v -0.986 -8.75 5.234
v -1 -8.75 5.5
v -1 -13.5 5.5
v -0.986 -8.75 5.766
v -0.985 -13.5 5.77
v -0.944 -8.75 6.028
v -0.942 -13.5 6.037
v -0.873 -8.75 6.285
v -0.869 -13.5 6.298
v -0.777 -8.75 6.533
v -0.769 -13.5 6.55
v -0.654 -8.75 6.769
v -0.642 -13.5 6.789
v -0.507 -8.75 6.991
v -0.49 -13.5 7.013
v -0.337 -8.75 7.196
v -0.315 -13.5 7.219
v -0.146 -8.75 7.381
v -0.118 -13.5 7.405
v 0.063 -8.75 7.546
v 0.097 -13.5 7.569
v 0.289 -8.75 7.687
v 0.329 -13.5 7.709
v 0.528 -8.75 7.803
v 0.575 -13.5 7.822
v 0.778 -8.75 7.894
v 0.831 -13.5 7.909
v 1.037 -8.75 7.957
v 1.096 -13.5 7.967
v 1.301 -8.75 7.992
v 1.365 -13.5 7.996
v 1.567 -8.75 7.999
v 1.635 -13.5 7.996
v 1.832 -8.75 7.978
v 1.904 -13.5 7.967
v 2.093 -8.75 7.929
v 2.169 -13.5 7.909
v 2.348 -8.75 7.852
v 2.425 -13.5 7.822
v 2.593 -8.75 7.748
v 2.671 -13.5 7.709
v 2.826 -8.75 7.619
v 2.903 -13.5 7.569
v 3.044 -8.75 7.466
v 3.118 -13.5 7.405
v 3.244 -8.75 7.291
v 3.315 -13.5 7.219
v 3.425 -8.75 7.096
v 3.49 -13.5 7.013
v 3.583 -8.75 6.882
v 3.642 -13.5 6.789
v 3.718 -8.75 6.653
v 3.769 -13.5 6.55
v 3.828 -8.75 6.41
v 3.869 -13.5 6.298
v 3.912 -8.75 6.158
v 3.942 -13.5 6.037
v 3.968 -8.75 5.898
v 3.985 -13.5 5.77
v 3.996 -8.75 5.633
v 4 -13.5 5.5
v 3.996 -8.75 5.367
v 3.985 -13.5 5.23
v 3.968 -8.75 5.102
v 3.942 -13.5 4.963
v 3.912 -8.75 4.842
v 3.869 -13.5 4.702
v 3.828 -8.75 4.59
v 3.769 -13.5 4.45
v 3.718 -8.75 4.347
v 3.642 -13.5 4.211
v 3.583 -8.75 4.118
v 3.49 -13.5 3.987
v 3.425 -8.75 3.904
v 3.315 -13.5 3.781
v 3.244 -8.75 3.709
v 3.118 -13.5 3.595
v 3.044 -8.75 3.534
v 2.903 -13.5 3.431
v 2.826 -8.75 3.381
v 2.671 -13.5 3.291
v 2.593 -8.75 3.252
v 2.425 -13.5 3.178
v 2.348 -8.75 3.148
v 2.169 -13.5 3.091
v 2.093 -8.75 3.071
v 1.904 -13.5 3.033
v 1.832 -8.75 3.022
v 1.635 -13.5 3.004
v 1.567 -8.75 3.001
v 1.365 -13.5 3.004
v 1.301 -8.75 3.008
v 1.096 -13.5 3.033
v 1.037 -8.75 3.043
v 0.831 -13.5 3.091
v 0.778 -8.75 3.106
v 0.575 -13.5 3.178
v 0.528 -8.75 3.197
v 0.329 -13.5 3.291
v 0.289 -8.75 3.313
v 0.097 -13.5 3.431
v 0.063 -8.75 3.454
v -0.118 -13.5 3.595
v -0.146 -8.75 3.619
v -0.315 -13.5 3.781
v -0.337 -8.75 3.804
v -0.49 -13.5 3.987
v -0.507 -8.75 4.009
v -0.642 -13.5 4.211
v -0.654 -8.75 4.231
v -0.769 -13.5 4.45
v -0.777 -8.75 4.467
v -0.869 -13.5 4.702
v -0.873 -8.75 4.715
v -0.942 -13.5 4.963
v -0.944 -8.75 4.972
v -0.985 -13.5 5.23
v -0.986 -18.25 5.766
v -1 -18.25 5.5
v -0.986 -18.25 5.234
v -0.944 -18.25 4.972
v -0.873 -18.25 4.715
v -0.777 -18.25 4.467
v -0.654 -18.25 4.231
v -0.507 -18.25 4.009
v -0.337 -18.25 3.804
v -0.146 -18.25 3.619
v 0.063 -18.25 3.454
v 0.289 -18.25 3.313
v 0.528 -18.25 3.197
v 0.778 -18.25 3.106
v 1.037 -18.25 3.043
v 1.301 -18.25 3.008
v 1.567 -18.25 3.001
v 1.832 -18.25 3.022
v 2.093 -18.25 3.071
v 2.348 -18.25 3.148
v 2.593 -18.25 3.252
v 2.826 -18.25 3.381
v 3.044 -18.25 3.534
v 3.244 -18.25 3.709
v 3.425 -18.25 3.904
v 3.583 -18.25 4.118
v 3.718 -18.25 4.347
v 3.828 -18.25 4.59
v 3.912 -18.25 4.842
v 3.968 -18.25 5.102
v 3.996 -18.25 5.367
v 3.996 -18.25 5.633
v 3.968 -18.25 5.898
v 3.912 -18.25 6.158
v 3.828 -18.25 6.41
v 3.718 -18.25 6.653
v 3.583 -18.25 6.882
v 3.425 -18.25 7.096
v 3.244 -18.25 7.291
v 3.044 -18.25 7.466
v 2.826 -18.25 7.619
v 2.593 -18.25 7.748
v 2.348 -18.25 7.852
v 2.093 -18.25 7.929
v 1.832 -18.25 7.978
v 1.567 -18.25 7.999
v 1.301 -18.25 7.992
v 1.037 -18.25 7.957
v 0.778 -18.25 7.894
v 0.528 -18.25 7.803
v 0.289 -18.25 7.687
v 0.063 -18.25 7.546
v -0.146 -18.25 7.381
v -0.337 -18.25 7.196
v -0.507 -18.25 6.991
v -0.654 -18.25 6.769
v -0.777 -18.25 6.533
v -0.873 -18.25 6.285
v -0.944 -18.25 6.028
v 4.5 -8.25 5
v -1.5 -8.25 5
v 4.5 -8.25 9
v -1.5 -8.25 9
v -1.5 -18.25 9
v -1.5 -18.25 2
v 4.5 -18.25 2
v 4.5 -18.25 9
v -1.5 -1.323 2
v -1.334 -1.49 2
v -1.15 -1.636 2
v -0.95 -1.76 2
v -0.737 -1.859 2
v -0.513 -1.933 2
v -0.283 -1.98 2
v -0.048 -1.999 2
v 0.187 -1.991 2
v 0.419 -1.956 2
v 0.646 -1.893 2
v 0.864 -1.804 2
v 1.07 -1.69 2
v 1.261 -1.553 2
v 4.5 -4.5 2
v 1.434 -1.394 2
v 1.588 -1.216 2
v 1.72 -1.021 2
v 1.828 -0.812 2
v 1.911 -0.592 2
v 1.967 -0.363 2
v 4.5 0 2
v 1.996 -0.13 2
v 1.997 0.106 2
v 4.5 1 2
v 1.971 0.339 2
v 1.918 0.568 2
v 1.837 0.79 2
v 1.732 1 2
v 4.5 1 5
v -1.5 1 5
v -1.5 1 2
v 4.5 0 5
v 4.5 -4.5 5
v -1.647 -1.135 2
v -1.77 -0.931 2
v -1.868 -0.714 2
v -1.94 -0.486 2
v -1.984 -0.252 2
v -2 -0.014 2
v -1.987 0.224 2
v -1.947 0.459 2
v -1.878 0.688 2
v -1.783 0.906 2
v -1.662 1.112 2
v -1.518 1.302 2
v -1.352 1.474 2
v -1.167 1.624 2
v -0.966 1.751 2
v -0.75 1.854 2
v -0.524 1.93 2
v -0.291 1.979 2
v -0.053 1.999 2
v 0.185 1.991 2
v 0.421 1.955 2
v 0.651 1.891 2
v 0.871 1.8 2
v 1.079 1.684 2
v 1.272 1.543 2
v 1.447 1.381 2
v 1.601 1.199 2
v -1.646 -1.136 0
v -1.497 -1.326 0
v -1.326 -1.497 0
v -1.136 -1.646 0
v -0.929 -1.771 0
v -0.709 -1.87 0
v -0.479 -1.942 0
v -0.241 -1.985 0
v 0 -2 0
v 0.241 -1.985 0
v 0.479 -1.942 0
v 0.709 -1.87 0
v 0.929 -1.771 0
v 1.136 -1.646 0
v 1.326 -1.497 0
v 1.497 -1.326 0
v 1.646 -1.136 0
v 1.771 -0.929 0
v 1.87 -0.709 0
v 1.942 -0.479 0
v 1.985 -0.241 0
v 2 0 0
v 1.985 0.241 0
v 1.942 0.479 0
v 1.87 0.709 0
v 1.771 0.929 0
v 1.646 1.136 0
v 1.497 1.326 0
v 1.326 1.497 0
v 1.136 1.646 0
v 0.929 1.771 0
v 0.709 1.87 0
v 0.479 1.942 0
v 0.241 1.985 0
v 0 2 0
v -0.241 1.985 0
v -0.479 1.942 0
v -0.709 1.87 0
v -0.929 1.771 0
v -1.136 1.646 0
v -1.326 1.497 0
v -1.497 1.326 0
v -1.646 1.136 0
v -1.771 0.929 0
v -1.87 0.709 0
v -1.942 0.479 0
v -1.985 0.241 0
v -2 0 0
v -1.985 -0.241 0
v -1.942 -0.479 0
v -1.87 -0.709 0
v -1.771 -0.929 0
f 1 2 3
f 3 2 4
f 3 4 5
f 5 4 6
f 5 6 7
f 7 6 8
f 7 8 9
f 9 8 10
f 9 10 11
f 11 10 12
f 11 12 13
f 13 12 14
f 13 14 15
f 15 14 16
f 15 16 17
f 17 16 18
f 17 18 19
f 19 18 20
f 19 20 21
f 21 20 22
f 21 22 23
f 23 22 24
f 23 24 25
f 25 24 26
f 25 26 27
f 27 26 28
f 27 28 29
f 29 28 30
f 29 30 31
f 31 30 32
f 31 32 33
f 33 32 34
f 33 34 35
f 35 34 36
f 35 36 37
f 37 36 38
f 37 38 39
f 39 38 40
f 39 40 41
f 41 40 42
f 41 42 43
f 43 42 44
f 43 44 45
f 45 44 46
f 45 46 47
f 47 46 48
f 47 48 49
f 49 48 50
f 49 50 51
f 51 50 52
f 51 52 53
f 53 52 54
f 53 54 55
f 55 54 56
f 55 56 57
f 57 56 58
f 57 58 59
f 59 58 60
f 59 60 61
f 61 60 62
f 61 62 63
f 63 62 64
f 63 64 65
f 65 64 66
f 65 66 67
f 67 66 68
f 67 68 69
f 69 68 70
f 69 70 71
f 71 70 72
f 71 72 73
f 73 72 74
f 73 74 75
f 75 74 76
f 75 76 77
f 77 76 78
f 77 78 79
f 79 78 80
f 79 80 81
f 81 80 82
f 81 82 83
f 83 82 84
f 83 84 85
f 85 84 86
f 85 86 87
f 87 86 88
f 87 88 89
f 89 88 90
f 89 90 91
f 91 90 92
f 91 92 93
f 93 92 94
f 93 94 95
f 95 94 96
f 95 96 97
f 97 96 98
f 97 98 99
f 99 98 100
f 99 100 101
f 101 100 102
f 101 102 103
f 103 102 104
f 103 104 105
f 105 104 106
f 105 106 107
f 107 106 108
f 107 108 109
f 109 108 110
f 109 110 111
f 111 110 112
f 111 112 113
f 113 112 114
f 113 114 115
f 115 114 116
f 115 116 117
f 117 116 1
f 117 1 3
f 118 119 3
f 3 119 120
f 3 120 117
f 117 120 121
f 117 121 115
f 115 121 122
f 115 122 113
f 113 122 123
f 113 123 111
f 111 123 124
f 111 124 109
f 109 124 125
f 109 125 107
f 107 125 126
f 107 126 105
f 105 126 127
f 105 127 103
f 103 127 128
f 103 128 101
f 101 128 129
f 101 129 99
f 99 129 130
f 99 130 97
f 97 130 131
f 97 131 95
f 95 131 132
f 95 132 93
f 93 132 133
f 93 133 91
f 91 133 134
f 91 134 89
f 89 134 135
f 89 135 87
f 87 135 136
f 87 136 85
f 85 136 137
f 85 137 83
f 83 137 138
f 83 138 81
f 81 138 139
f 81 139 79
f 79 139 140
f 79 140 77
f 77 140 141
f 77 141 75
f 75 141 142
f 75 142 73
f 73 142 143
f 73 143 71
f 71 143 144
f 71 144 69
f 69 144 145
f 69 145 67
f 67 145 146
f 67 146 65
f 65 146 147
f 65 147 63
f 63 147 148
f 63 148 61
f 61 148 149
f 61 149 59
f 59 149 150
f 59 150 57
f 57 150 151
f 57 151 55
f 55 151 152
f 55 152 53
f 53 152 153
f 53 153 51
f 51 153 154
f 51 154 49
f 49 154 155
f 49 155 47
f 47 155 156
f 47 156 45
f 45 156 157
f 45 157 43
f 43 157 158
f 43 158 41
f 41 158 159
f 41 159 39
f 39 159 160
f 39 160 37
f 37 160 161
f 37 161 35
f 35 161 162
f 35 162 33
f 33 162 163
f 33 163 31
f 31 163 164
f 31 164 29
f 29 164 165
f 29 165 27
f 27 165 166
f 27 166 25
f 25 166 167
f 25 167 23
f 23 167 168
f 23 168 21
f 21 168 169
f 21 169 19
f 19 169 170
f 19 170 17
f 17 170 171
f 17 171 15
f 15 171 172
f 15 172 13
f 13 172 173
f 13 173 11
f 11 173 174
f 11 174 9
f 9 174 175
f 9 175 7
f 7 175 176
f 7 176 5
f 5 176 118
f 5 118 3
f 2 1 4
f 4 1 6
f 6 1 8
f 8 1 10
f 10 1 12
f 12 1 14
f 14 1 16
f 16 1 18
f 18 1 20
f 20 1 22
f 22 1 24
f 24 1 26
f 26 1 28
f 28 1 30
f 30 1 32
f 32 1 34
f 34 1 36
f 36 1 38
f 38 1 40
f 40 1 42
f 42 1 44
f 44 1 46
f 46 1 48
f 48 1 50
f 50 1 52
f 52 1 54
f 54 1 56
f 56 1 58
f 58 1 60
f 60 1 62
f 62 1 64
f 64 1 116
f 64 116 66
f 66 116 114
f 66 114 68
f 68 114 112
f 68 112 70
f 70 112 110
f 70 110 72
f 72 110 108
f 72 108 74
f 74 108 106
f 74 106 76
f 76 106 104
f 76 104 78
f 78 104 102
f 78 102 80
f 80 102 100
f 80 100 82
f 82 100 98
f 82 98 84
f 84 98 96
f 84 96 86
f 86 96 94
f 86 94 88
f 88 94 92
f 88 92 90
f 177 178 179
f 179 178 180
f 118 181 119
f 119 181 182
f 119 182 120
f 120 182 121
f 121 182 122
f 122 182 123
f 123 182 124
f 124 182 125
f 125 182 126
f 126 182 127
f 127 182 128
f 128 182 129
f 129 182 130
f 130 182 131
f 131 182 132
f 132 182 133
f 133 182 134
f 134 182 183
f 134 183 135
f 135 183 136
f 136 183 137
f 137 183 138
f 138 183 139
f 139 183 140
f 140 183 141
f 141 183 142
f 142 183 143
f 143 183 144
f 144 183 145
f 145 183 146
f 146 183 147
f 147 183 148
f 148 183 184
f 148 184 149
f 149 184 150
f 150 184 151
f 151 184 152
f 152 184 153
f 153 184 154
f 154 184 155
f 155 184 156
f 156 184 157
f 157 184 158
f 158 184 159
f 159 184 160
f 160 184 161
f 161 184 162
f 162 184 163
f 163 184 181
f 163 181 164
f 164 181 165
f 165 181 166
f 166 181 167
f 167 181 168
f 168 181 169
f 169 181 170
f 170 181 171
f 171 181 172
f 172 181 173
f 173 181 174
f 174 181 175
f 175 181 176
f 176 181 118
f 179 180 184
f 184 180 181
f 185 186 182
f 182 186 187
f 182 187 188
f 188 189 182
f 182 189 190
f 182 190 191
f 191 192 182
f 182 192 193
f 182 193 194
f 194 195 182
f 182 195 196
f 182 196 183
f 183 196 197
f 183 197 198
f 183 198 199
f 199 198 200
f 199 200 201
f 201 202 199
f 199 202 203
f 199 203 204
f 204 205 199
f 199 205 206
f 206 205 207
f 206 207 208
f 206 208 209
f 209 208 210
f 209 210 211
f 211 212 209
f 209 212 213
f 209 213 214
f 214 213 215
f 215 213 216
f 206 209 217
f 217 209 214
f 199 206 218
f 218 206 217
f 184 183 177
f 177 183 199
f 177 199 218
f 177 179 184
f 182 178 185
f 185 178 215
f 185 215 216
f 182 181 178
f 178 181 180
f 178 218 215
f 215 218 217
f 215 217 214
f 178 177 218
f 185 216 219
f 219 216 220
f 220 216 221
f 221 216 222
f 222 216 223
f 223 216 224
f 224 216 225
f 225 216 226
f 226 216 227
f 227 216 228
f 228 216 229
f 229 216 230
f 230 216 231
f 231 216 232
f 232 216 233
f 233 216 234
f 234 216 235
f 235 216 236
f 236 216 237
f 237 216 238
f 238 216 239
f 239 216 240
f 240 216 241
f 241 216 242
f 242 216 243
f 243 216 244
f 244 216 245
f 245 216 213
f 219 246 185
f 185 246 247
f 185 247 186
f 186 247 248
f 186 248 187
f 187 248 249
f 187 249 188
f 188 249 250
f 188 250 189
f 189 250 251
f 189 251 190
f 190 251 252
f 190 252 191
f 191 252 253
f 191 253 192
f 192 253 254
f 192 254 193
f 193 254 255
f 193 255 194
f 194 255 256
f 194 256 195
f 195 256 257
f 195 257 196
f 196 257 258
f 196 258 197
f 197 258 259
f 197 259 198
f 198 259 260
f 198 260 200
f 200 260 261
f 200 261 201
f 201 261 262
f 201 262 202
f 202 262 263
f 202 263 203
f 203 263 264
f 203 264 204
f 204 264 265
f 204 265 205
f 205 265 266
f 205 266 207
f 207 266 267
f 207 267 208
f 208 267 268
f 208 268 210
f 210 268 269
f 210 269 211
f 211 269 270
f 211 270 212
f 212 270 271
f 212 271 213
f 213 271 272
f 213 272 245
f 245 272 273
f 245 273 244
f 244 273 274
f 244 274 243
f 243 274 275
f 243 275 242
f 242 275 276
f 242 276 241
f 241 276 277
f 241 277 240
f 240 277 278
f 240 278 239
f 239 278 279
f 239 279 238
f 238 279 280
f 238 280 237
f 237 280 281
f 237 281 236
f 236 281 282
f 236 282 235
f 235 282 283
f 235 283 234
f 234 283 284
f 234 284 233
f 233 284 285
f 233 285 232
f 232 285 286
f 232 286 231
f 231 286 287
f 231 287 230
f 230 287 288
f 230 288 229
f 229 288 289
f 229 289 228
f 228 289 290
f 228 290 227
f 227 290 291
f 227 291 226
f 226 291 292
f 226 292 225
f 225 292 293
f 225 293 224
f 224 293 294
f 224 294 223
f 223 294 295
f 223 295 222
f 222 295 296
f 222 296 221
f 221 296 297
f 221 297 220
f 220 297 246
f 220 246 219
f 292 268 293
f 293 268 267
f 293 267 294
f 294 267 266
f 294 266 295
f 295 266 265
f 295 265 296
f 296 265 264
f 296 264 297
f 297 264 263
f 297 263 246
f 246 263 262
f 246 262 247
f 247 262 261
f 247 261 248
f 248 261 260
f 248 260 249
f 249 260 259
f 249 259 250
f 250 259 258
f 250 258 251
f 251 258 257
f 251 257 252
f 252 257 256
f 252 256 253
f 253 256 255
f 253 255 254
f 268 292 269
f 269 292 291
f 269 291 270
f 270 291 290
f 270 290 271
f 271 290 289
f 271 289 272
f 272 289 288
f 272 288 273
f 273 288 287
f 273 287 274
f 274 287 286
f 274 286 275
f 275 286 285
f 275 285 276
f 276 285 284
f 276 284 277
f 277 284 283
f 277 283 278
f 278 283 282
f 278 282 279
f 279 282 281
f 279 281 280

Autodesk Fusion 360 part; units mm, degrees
sketch "Skizze1" plane through (0, 0, 0) normal (0, 0, 1) x (1, 0, 0)
  circle A0 centre (0, 0) radius 3
  line L0 (2.5981, 1.5) -> (-2.5981, 1.5)
  circle A1 centre (0, 0) radius 2
  line L1 (-2.5981, 1.5) -> (-2.5981, 1)
  line L2 (-2.5981, 1) -> (-2.8284, 1)
  line L3 (-2.5981, 1) -> (2.8284, 1)
  line L4 (3, 0) -> (4.5, 0)
  line L5 (4.5, 0) -> (4.5, 1)
  line L6 (4.5, 1) -> (2.8284, 1)
  line L7 (-3, 0) -> (-4.5, 0)
  line L8 (-4.5, 0) -> (-4.5, 1)
  line L9 (-4.5, 1) -> (-2.8284, 1)
  line L10 (0, -3) -> (0, -4.5)
  line L11 (0, -4.5) -> (4.5, -4.5)
  line L12 (4.5, -4.5) -> (4.5, 0)
  line L13 (-4.5, 0) -> (-4.5, -4.5)
  line L14 (-4.5, -4.5) -> (0, -4.5)
  circle A2 centre (0, 0) radius 1.75
  line L15 (0, 1.75) -> (0, -8.25)
  line L16 (0, -8.25) -> (0, -18.25)
  line L17 (0, -8.25) -> (-4.5, -8.25)
  line L18 (-4.5, -8.25) -> (-4.5, -4.5)
  line L19 (0, -8.25) -> (4.5, -8.25)
  line L20 (4.5, -8.25) -> (4.5, -4.5)
  line L21 (4.5, -8.25) -> (4.4512, -8.25)
  line L22 (4.5, -8.25) -> (-4.5, -8.25)
  line L23 (-4.5, -8.25) -> (-4.5, -18.25)
  line L24 (-4.5, -18.25) -> (4.5, -18.25)
  line L25 (4.5, -18.25) -> (4.5, -8.25)
  line L26 (0, 0) -> (1.5, 0)
  line L27 (1.5, 0) -> (1.5, 1)
  line L28 (1.5, 0) -> (1.5, -18.25)
  line L29 (0, 0) -> (-1.5, 0)
  line L30 (-1.5, 0) -> (-1.5, 1)
  line L31 (-1.5, 0) -> (-1.5, -18.25)
  dimension "d2" = 6
  dimension "d3" = 0.5
  dimension "d4" = 1.5
  dimension "d5" = 1.5
  dimension "d6" = 1.5
  dimension "d7" = 4
  dimension "d8" = 3.5
  dimension "d19" = 10
  dimension "d20" = 10
  dimension "d21" = 9
  dimension "d22" = 10
  dimension "d32" = 1.5
  dimension "d33" = 1.5
extrude "Extrusion2" add sketch "Skizze1" along normal blind 2 contours L0 A1 L3 A2 | A1 L3 A2 L27 L28 | A1 A2 L15 L28 | L0 A1 A2 | L3 A2 L27 | A1 A2 L15 L31 | A2 L27 L28 | A2 L15 L26 L28 | L0 A1 L3 A2 | L0 L3 A2 L15 | L0 A2 L15 | L3 A2 L15 L26 L27 | A1 L3 A2 L30 L31 | A2 L15 L29 L31 | L0 A2 L15 | L0 L3 A2 L15 | L3 A2 L15 L29 L30 | A2 L30 L31 | L3 A2 L30
extrude "Extrusion5" add sketch "Skizze1" along normal blind 3 from surface at 2 contours A0 A1 L3 L28 | A0 L4 L11 L12 L28 | A0 L4 L5 L6 | A0 L10 L11 L15 L28 | A0 A1 L15 L28 | A1 L3 A2 L27 L28 | A0 L10 L14 L15 L31 | A0 A1 L15 L31 | A1 A2 L15 L28 | L11 L15 L19 L22 L28 | L11 L19 L20 L21 L22 L28 | L3 A2 L27 | L14 L15 L17 L22 L31 | A1 A2 L15 L31 | A2 L27 L28 | A2 L15 L26 L28 | L3 A2 L15 L26 L27 | A2 L15 L29 L31 | L3 A2 L15 L29 L30 | L3 A2 L30
extrude "Extrusion6" add sketch "Skizze1" along normal blind 7 from surface at 2 contours L16 L19 L22 L24 L28 | L19 L21 L22 L24 L25 L28 | L16 L17 L22 L24 L31
sketch "Skizze2" plane through (0, -18.25, 0) normal (0, -1, 0) x (1, 0, 0)
  line L0 (-1.5, 2) -> (4.5, 2)
  line L1 (4.5, 9) -> (-1.5, 9)
  circle A0 centre (1.5, 5.5) radius 2.5
  line L2 (4.5, 2) -> (4.5, 9)
  line L3 (-1.5, 9) -> (-1.5, 2)
  dimension "d29" = 5
extrude "Extrusion7" cut sketch "Skizze2" against normal blind 9.5 contours A0
